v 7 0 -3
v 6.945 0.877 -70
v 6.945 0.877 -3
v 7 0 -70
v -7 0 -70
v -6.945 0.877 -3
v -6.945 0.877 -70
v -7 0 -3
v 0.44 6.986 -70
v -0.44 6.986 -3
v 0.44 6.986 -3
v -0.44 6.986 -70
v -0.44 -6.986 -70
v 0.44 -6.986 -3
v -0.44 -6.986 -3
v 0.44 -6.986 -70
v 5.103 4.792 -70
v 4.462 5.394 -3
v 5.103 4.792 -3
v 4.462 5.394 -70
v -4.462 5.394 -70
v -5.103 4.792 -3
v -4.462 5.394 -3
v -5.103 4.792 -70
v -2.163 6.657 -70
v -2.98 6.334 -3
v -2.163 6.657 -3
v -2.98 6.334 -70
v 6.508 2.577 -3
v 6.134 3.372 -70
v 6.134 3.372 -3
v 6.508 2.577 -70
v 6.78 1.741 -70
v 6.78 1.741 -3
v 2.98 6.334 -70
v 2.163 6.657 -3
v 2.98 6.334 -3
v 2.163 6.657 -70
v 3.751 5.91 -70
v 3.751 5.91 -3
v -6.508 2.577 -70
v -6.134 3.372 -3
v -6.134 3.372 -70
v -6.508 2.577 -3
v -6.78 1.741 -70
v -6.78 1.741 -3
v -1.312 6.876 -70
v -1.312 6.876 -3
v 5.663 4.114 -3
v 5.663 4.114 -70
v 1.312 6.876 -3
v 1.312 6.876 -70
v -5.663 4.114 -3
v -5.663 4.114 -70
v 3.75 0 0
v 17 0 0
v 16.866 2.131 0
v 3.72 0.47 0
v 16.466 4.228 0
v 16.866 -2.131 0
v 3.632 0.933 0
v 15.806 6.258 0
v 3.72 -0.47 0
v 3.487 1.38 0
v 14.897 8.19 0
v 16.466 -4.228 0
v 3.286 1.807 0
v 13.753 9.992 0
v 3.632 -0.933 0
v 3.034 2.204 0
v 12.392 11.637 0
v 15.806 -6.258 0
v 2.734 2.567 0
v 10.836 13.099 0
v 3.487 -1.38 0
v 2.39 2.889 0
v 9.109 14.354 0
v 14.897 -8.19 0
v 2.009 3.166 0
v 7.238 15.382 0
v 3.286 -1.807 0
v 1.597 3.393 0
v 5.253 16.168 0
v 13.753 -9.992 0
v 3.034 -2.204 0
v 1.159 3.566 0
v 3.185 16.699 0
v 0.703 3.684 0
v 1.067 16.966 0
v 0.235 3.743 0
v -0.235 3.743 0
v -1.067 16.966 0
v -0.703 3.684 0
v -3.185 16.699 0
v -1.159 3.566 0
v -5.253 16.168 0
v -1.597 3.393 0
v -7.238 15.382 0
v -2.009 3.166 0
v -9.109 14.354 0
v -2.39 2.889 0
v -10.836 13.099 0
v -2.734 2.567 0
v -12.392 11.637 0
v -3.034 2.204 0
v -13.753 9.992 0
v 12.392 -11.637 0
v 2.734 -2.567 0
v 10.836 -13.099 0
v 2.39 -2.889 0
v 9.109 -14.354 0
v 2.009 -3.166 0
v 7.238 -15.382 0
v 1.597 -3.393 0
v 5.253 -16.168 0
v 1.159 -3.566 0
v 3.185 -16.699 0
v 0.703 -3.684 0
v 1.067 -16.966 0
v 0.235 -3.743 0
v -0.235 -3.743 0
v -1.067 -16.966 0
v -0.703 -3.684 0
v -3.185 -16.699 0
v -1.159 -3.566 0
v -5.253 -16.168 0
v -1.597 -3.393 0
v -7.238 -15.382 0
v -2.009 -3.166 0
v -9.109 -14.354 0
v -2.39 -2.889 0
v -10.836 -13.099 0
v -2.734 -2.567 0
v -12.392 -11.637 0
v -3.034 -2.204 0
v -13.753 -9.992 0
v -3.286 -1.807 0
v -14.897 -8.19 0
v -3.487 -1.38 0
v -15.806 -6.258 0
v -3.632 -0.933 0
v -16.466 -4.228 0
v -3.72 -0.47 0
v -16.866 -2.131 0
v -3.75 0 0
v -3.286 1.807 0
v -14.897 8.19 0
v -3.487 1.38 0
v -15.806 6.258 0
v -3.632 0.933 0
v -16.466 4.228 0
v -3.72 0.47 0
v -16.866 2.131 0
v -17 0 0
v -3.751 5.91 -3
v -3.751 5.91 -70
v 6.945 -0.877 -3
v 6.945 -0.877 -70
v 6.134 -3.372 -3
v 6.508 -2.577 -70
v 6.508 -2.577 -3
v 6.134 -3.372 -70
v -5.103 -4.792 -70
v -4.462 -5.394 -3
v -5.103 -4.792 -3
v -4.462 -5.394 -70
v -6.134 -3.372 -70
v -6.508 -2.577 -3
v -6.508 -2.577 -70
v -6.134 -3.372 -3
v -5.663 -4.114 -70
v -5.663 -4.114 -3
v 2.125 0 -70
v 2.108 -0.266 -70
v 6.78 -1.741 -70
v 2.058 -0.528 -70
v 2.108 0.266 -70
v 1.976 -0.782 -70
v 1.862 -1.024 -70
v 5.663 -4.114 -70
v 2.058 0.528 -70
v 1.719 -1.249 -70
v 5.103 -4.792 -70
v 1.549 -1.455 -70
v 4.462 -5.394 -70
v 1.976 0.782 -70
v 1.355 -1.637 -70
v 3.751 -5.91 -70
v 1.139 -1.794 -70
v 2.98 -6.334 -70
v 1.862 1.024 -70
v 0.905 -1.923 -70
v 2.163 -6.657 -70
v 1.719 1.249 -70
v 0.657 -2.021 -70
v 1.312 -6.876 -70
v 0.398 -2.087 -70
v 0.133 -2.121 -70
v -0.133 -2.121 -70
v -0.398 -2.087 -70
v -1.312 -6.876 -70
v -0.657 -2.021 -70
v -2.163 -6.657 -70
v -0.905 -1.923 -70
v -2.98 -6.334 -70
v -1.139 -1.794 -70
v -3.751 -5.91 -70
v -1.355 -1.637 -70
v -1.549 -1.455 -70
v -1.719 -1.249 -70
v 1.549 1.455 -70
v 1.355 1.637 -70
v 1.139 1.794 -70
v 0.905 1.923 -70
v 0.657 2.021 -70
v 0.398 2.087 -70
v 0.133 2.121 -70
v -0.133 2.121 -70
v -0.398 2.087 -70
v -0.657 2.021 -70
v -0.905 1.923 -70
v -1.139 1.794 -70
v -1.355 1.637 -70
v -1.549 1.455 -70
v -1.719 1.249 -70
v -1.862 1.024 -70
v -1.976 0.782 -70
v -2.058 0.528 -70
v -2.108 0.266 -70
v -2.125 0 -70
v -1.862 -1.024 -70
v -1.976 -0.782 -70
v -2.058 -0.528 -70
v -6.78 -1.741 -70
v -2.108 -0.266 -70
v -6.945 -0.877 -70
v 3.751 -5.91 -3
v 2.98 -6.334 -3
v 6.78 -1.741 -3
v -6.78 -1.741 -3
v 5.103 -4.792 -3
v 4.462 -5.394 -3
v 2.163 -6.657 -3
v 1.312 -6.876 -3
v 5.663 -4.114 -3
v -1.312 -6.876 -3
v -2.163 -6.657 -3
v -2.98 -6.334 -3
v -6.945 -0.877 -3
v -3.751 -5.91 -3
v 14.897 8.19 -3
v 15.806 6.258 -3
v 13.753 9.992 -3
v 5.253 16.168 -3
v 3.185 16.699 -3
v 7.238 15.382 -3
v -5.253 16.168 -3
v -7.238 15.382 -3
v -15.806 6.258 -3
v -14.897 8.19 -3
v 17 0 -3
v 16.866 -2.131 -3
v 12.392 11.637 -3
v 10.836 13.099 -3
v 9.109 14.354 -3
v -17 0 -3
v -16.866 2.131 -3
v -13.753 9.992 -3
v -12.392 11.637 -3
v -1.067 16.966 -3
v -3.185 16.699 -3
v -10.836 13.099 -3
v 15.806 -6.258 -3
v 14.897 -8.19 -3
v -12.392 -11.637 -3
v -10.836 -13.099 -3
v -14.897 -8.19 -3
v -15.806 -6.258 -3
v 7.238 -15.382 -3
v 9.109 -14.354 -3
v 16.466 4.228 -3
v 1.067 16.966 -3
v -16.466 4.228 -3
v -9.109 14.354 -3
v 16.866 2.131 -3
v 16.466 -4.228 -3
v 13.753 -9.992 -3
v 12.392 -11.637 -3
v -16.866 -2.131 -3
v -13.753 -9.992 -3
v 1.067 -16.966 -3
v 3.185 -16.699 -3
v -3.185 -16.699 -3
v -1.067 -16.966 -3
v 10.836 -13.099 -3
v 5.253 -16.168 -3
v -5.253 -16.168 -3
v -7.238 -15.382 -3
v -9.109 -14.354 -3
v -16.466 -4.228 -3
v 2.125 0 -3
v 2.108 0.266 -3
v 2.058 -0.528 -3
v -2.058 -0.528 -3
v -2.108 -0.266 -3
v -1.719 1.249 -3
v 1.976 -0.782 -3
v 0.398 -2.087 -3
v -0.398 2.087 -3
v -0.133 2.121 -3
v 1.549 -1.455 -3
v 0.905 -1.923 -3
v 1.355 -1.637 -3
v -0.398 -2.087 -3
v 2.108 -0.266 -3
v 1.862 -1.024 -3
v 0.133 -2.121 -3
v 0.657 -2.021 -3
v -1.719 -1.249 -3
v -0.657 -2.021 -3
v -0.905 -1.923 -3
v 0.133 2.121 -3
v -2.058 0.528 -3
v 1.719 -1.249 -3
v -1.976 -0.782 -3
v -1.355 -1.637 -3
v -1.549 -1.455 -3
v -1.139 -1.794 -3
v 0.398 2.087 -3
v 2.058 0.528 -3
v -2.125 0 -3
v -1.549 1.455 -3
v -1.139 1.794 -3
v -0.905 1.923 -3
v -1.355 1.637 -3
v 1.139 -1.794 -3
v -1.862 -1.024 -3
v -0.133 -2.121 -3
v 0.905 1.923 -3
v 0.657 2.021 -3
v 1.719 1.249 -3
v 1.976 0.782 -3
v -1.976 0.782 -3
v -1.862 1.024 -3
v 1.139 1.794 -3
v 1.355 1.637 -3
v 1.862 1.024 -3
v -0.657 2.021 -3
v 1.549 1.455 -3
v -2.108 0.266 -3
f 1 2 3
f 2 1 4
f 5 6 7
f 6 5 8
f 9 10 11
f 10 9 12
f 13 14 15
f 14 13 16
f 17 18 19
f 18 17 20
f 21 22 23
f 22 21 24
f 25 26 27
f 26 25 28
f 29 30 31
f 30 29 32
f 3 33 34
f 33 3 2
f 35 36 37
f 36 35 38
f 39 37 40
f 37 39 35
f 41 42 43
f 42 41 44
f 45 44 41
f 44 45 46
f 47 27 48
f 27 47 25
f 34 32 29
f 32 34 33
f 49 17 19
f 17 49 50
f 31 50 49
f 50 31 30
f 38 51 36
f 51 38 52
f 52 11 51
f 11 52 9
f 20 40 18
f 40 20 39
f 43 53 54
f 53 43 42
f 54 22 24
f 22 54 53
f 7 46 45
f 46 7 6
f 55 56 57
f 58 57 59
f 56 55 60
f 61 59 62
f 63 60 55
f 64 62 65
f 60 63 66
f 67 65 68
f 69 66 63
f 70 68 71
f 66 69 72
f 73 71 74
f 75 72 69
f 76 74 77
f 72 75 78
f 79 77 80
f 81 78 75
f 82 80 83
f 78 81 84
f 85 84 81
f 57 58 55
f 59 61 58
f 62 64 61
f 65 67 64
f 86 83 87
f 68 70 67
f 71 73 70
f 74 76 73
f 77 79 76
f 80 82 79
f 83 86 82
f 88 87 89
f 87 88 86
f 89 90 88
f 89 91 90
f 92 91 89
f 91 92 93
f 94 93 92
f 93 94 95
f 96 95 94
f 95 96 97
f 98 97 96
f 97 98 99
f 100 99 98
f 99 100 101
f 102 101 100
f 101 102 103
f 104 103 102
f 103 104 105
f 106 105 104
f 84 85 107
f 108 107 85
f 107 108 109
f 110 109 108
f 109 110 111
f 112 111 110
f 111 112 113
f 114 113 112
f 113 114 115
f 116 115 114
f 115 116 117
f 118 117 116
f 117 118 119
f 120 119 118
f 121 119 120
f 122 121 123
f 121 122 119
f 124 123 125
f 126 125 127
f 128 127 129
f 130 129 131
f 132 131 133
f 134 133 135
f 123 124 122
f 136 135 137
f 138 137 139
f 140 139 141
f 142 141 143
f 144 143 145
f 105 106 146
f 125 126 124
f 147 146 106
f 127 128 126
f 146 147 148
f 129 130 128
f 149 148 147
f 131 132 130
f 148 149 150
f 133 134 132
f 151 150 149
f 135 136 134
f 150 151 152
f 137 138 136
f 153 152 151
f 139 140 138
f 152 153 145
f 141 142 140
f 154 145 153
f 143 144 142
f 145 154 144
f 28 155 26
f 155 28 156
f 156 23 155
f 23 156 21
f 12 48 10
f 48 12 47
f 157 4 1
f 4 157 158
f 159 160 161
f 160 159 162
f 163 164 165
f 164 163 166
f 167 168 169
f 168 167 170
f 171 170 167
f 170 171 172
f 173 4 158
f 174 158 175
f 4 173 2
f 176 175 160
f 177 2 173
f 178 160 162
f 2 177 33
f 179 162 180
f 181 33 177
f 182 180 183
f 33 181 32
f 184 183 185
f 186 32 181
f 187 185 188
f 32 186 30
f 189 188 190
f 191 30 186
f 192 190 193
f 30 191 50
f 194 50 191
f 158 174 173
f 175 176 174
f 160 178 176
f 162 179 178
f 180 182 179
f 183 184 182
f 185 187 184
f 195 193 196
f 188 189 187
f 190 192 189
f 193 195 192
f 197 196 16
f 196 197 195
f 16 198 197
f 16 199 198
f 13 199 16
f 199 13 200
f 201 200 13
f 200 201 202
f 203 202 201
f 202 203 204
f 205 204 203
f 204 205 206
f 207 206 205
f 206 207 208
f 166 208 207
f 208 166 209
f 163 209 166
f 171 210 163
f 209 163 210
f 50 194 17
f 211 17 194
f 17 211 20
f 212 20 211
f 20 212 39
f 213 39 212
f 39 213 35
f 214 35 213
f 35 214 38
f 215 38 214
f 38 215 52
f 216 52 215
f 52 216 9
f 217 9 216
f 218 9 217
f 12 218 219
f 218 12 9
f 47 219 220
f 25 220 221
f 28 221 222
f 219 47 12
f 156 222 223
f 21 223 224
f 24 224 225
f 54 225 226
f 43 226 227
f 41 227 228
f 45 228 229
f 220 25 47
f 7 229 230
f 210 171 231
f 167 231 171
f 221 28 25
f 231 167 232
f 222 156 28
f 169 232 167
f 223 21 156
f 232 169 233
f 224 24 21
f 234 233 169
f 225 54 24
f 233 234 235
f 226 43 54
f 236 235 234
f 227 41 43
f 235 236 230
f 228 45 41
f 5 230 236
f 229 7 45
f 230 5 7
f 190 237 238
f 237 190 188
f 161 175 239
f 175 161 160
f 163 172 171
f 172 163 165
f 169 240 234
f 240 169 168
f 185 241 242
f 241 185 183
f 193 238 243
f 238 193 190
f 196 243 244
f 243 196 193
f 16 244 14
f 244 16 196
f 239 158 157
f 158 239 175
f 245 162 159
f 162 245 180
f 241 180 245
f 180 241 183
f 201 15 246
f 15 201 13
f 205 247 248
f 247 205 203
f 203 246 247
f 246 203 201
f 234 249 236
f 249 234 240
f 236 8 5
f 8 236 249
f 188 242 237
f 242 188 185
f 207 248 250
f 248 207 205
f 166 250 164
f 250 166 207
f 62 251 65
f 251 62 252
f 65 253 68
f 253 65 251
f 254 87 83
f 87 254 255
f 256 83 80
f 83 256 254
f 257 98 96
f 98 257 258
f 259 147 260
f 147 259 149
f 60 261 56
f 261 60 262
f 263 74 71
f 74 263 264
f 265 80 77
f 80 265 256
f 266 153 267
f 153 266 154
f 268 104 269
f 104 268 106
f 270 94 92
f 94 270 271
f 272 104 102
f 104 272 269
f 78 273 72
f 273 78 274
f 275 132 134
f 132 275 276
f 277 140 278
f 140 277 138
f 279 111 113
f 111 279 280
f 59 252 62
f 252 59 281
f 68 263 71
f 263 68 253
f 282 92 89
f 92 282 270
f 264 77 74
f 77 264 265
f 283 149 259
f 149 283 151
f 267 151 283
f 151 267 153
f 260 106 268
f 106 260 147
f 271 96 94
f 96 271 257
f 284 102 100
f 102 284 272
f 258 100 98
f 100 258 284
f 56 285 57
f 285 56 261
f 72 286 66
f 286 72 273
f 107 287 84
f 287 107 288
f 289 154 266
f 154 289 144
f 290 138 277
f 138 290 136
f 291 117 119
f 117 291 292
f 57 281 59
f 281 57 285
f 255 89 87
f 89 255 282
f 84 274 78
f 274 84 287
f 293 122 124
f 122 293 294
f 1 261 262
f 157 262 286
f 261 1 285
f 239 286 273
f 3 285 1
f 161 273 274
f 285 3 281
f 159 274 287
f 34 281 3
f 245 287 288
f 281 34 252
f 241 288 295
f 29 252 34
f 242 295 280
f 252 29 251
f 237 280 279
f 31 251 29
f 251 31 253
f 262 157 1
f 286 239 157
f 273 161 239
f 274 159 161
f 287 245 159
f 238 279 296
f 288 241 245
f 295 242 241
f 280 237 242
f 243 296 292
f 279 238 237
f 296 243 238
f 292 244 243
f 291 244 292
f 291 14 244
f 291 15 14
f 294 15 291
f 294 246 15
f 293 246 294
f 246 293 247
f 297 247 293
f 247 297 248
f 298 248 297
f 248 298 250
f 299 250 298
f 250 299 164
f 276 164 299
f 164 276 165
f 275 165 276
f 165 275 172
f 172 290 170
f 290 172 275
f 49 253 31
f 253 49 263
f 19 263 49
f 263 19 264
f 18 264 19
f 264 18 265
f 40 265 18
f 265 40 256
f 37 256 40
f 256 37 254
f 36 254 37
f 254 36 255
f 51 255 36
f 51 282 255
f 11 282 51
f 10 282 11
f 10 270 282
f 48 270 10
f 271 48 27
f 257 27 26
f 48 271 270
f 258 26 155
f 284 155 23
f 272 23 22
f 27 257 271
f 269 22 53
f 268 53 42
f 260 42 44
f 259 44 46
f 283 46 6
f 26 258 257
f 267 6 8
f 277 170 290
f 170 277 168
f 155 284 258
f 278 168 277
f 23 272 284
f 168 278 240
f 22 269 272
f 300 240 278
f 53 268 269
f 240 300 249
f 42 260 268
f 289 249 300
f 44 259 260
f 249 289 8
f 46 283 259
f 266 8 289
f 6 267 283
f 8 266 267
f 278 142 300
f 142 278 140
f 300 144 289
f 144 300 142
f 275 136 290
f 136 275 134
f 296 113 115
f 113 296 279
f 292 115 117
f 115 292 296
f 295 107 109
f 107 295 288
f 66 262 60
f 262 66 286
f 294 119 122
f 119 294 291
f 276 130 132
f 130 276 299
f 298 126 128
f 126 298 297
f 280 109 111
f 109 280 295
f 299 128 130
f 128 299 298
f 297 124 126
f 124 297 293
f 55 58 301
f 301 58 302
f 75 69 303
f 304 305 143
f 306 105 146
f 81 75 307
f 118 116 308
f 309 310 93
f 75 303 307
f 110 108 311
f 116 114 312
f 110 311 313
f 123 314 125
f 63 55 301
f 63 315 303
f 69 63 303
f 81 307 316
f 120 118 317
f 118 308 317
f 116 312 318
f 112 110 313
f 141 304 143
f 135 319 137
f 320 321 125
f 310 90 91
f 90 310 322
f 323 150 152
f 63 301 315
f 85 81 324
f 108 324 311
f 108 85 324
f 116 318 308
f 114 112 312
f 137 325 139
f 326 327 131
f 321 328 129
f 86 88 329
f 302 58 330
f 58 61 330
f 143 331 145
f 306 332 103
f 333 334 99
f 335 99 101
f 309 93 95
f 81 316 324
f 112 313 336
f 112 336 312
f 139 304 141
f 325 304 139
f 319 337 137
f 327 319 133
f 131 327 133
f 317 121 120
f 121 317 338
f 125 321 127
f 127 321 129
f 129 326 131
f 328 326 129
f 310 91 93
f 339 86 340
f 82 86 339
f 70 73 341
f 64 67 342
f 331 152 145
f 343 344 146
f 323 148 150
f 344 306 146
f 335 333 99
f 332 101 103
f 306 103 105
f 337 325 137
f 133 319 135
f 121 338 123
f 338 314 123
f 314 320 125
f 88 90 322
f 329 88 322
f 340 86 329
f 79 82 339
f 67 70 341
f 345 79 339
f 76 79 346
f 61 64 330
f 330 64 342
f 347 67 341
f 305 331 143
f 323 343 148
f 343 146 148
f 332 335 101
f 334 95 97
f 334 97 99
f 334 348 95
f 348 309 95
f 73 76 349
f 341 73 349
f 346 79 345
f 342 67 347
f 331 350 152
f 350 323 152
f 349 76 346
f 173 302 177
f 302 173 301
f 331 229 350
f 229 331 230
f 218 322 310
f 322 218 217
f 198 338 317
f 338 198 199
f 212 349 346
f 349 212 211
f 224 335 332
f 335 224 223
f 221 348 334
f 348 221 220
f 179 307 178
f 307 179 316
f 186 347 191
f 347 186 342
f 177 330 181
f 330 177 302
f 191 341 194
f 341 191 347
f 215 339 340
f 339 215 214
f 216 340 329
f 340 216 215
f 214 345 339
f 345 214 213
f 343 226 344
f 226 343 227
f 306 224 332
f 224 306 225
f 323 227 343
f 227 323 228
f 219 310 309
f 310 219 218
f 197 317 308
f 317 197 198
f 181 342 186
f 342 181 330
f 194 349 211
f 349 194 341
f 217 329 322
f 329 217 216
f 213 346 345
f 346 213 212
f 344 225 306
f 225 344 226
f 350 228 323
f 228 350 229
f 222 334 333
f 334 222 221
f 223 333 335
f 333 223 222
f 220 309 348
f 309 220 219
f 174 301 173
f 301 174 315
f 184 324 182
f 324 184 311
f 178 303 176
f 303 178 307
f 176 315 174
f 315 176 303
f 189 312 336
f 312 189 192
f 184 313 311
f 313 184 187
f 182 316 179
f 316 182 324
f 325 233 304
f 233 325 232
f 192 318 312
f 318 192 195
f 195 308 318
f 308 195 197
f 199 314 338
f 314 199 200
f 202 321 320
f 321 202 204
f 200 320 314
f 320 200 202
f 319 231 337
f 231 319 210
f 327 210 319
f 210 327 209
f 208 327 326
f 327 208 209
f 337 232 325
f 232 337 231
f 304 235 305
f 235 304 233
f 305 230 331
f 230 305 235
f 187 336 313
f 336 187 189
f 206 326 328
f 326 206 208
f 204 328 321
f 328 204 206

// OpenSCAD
$fn = 50;


difference() {
	union() {
		translate(v = [0, 0, -70.0000000000]) {
			cylinder(h = 70, r = 7.0000000000);
		}
		translate(v = [0, 0, -3.0000000000]) {
			cylinder(h = 3, r = 17.0000000000);
		}
	}
	union() {
		translate(v = [0, 0, 0]) {
			rotate(a = [0, 0, 0]) {
				difference() {
					union() {
						#translate(v = [0, 0, -70.0000000000]) {
							cylinder(h = 70, r = 2.0000000000);
						}
						#translate(v = [0, 0, -3]) {
							cylinder(h = 3, r1 = 2.1250000000, r2 = 3.7500000000);
						}
						#translate(v = [0, 0, -70.0000000000]) {
							cylinder(h = 70, r = 2.1250000000);
						}
						#translate(v = [0, 0, -70.0000000000]) {
							cylinder(h = 70, r = 2.0000000000);
						}
					}
					union();
				}
			}
		}
	}
}
